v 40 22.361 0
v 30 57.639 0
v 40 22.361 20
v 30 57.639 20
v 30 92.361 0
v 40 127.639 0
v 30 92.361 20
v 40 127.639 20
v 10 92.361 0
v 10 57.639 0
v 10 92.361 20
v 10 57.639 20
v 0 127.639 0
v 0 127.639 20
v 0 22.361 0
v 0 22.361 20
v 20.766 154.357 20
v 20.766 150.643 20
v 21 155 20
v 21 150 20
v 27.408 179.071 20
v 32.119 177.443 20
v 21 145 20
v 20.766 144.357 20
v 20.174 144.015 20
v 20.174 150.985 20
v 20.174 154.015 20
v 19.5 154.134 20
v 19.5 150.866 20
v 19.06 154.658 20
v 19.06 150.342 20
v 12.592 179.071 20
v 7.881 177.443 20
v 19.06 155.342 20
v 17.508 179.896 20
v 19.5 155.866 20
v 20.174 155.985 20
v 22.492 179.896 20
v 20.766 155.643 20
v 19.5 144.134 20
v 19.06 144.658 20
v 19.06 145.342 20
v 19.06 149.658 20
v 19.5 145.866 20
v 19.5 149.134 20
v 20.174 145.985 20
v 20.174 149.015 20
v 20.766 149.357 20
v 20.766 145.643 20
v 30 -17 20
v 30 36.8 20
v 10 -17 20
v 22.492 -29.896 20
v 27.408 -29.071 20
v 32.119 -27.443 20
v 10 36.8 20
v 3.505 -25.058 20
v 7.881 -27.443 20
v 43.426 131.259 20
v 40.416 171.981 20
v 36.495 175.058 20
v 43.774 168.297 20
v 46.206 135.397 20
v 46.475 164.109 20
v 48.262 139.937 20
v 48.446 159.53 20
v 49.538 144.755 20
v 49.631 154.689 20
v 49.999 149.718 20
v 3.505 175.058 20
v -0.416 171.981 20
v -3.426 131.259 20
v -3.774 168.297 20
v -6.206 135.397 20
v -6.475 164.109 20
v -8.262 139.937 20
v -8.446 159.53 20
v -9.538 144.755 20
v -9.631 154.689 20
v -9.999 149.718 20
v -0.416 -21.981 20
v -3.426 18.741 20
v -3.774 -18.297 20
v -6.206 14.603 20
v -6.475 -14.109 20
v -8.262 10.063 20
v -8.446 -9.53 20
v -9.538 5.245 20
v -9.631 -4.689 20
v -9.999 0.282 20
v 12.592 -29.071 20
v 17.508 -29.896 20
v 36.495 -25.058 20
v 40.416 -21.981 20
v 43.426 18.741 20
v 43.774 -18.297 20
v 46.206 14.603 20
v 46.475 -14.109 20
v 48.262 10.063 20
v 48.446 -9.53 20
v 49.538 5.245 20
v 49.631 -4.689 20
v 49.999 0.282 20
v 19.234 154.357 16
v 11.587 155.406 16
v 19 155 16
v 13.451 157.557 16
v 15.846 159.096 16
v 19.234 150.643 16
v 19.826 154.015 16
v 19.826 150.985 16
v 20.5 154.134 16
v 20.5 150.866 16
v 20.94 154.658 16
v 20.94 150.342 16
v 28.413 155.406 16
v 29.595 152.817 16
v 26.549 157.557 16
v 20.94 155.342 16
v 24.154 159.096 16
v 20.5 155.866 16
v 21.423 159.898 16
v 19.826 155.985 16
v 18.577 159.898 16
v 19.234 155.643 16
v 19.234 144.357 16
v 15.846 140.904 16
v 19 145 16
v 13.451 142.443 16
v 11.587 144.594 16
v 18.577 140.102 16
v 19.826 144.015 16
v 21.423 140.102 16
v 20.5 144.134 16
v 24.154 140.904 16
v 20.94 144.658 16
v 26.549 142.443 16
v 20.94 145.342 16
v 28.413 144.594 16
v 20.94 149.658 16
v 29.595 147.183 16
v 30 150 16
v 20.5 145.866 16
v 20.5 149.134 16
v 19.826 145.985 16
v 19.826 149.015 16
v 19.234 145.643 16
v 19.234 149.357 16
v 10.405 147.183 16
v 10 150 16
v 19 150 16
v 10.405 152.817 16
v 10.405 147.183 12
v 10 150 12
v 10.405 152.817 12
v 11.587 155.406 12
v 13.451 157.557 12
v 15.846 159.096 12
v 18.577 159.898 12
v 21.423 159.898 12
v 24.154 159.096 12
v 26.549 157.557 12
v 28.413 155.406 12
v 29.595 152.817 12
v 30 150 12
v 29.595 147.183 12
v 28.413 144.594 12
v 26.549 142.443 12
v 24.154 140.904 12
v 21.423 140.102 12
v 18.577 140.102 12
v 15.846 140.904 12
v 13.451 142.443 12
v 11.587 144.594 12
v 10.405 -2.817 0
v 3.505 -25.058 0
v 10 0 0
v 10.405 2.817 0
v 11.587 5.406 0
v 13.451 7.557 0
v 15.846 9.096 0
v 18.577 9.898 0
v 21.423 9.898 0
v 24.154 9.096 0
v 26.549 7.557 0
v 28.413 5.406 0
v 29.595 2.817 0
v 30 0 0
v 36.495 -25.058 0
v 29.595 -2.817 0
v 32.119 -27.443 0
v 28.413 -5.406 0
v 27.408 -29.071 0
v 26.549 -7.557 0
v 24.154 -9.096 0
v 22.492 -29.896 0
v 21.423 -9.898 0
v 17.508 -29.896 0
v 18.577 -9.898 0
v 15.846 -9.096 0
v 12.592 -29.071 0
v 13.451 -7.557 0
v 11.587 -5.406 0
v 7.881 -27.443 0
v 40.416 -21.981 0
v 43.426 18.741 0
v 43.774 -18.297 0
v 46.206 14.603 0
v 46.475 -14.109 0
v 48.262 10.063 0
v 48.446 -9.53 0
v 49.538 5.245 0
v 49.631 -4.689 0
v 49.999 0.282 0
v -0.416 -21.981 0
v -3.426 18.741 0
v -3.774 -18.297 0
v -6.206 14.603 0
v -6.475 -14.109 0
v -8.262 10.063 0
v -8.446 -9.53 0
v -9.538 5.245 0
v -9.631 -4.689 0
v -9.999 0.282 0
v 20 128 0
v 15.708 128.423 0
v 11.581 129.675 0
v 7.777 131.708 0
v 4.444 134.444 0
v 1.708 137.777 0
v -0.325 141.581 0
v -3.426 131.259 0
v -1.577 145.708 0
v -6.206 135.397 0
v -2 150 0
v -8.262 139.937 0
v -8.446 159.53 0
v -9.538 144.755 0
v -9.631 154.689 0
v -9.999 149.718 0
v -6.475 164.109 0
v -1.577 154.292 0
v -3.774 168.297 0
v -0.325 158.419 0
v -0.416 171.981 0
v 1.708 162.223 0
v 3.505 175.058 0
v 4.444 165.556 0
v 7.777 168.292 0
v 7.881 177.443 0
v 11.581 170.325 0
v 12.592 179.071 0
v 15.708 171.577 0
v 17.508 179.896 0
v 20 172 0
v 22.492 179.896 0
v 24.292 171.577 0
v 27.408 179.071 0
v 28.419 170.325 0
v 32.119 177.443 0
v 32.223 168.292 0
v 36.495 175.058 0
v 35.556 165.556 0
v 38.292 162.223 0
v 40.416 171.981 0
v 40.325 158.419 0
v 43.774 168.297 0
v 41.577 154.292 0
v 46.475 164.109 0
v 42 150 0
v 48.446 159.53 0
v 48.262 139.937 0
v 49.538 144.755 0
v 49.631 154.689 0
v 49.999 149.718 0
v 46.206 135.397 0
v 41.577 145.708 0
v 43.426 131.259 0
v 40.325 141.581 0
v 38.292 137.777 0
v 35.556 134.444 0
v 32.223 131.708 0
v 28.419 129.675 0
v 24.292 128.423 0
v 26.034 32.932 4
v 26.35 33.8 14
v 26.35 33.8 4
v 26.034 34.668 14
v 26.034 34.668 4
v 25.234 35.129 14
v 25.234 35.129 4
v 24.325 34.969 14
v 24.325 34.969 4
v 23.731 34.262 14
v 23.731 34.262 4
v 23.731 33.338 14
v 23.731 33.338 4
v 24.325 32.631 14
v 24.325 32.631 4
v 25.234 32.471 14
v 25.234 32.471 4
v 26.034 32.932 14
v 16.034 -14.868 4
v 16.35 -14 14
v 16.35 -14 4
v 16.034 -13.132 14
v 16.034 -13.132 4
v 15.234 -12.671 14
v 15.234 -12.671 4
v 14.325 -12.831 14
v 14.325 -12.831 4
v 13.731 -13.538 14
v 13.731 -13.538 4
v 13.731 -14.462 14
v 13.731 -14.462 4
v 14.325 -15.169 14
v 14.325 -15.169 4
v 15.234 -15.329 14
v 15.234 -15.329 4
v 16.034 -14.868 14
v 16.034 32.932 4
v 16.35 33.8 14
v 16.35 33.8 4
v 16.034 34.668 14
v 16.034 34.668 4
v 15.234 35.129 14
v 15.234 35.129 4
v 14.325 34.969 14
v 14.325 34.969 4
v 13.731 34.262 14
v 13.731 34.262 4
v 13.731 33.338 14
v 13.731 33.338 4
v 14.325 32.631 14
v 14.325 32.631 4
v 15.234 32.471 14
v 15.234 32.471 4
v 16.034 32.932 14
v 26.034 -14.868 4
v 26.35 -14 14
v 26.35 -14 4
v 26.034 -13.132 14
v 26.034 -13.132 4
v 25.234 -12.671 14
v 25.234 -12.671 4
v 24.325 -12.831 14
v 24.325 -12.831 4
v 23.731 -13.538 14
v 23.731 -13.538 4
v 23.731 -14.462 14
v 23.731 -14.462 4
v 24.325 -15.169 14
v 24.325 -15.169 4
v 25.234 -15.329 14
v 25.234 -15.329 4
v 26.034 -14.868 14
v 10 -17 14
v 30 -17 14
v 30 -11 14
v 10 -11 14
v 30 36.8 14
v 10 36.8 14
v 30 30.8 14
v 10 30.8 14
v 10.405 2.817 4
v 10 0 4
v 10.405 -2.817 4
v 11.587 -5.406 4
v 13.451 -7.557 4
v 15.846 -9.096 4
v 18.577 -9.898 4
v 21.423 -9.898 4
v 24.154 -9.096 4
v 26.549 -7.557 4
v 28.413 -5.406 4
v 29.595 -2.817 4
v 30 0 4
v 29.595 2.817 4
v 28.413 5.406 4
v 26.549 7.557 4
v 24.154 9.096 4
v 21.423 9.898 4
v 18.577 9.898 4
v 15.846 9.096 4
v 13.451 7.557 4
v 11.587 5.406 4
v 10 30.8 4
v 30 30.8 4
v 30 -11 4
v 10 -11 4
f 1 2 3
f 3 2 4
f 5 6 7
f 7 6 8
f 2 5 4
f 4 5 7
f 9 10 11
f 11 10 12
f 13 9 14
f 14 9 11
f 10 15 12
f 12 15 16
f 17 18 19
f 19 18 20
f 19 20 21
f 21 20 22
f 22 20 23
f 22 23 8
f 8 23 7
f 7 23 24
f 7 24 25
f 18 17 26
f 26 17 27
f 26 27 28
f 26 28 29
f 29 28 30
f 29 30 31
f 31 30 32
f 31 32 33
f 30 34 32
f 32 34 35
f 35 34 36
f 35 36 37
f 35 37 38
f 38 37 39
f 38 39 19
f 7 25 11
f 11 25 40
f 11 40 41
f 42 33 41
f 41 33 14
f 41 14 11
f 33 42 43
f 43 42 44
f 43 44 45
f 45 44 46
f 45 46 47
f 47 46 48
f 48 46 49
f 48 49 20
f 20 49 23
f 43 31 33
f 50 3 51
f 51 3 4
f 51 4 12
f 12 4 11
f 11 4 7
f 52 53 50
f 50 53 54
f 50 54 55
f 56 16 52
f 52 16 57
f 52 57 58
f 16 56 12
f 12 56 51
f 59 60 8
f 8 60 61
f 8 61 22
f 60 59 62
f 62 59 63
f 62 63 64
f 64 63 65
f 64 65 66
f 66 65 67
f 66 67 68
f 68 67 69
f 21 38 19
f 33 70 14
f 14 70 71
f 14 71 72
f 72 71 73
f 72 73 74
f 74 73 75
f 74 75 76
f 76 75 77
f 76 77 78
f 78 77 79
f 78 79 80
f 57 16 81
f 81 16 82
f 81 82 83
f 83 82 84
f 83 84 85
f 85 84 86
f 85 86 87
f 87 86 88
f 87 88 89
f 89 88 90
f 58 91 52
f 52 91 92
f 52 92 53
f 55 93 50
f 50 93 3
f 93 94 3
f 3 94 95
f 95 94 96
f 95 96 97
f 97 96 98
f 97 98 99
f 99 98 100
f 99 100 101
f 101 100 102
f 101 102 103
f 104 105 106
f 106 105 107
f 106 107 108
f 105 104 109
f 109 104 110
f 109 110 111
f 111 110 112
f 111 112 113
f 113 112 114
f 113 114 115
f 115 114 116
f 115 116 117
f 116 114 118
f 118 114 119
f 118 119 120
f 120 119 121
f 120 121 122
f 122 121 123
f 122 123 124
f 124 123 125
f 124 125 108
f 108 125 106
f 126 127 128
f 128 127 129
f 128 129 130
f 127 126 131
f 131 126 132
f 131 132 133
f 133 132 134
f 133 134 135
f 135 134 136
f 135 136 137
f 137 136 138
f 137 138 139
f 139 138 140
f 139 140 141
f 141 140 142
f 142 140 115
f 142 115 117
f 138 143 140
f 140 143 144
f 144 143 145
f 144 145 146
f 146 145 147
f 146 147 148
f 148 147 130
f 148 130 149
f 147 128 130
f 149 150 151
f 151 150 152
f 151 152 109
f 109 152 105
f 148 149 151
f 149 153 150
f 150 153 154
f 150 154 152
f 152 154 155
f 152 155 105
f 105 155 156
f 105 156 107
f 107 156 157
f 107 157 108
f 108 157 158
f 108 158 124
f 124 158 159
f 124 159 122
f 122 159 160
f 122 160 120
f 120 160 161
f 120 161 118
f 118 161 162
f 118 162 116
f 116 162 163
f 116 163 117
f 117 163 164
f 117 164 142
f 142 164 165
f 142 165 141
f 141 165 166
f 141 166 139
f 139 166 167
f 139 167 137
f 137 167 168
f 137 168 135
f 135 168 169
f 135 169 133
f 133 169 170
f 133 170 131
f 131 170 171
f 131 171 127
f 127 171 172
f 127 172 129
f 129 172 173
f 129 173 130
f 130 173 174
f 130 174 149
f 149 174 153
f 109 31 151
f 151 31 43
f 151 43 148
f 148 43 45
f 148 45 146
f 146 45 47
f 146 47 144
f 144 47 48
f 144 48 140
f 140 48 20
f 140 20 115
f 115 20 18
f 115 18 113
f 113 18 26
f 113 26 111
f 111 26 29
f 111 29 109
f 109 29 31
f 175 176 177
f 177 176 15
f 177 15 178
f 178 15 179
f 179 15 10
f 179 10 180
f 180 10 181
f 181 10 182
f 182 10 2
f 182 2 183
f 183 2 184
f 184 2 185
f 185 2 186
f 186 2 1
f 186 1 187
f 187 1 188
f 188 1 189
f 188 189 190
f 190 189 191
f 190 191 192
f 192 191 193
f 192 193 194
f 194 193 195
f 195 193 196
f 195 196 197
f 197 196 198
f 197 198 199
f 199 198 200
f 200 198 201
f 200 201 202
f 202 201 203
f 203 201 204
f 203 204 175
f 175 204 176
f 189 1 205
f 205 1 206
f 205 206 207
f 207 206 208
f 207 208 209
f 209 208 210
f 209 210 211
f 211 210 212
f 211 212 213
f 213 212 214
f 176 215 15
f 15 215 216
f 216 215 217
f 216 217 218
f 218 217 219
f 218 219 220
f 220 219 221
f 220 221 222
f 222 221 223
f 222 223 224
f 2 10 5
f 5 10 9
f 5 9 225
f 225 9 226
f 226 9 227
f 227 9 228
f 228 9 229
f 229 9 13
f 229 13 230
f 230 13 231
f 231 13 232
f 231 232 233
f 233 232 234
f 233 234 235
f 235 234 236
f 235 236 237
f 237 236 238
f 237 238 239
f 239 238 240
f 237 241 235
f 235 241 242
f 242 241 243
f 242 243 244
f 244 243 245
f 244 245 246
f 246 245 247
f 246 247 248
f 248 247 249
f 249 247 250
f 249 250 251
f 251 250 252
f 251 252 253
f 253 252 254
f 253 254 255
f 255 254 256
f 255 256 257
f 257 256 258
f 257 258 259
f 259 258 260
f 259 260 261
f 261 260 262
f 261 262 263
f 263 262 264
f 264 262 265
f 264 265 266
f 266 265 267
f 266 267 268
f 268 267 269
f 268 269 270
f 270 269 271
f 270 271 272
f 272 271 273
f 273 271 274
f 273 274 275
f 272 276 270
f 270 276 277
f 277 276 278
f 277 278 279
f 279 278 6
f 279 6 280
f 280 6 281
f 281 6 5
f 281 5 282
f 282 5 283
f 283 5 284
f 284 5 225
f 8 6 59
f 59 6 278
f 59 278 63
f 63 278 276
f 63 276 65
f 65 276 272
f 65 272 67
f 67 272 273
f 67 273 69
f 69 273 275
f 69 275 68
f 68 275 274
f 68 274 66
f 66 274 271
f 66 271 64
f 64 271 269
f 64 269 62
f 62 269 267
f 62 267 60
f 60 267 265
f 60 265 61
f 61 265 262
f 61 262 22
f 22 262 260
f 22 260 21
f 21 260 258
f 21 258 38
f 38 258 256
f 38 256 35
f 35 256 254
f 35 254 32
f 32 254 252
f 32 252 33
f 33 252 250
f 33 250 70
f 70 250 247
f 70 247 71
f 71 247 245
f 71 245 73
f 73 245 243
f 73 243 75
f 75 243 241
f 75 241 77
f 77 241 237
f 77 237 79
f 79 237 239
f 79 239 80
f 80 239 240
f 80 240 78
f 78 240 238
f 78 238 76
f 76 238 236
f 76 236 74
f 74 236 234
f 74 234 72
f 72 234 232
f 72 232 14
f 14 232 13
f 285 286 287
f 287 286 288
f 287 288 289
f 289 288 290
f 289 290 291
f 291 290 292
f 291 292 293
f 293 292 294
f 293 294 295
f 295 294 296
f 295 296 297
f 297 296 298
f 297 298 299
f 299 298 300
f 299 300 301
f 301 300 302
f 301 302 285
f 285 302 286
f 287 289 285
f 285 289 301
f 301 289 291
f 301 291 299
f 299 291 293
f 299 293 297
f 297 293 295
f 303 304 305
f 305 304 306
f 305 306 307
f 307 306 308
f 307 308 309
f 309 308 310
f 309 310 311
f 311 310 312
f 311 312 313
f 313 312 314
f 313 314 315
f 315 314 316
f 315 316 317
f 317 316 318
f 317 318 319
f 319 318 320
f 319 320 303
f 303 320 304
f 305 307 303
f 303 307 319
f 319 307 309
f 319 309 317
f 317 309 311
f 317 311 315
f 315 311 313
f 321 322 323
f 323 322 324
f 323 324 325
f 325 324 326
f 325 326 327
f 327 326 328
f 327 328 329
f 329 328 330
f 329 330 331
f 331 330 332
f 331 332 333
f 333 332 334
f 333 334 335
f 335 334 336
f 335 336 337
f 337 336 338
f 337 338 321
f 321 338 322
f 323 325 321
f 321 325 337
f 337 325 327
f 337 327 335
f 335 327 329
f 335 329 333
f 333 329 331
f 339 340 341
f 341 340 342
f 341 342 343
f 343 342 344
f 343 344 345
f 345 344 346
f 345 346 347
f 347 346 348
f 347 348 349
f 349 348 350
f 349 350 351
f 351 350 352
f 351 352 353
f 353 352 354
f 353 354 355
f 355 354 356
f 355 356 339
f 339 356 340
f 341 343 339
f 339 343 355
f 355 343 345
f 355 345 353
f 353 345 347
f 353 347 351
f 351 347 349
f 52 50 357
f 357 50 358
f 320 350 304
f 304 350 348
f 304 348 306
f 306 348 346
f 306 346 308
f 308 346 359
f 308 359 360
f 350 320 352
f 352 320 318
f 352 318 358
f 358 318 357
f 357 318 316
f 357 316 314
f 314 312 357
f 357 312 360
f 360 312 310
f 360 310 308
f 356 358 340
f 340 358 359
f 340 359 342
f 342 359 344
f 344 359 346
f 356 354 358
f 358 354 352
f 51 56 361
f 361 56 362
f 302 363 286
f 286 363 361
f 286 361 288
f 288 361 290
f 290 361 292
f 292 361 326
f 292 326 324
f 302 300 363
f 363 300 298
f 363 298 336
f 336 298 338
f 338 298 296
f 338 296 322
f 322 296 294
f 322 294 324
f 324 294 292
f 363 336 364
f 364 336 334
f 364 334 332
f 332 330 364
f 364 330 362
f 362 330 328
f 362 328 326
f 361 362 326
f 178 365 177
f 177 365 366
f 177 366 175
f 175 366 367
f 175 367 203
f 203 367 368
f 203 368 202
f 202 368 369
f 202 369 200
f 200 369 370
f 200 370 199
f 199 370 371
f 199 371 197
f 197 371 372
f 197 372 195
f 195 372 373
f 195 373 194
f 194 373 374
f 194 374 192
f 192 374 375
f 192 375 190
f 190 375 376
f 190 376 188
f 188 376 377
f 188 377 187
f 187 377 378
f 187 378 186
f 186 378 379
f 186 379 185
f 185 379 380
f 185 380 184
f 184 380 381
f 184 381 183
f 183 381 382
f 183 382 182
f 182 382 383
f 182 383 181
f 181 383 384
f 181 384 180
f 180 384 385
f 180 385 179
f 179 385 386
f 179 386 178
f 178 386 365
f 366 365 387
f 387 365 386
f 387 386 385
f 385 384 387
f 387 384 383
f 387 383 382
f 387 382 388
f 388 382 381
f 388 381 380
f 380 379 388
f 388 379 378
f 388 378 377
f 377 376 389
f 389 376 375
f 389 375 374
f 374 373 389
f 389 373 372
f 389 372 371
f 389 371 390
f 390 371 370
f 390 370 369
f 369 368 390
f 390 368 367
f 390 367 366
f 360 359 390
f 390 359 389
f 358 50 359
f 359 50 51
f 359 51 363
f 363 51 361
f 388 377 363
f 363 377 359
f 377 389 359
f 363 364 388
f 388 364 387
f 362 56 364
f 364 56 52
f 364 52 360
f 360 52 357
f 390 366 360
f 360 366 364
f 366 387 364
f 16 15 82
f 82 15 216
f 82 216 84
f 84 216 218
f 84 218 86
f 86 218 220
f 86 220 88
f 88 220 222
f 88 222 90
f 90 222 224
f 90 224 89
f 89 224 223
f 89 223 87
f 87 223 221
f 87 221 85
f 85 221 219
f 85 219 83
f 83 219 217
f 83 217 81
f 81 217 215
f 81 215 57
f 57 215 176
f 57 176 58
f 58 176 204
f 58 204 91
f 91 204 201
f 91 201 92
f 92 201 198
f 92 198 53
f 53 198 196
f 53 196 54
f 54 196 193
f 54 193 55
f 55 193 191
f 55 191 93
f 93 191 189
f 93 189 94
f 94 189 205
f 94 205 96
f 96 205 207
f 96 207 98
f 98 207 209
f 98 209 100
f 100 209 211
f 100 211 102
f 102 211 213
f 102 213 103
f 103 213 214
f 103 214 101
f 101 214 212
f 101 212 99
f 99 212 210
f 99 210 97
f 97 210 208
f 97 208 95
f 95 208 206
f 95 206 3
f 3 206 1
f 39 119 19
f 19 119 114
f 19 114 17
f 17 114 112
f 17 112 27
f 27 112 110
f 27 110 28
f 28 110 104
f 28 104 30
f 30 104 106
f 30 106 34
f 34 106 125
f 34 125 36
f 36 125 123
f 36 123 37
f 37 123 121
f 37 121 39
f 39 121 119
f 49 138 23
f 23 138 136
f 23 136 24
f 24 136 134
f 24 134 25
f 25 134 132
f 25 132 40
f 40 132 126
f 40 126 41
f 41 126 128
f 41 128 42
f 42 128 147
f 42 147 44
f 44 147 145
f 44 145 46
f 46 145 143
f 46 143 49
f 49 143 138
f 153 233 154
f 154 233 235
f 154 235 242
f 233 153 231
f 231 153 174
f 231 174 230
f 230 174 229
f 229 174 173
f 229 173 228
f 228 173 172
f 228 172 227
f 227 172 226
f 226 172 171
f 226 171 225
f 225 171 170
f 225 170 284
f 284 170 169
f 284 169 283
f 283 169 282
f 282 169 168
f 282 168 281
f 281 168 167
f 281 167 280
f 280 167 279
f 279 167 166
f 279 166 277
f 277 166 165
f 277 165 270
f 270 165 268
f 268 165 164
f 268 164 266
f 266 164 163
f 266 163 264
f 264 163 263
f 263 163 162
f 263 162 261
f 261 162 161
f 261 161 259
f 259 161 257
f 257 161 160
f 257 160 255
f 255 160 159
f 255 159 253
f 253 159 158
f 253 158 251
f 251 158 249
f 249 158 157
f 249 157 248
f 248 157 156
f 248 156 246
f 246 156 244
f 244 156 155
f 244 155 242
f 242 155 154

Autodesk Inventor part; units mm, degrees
ref_plane "YZ Plane" through (0, 0, 0) normal (1, 0, 0) x (0, 1, 0)
ref_plane "XZ Plane" through (0, 0, 0) normal (0, 1, 0) x (-1, 0, 0)
ref_plane "XY Plane" through (0, 0, 0) normal (0, 0, 1) x (1, 0, 0)
sketch "Sketch1" plane through (0, 0, 0) normal (0, 0, 1) x (1, 0, 0)
  line L0 (0, 0) -> (40, 0)
  line L1 (40, 0) -> (40, 150)
  line L2 (40, 150) -> (0, 150)
  line L3 (0, 150) -> (0, 0)
  circle A0 centre (20, 0) radius 30
  circle A1 centre (20, 150) radius 30
  point P0 (0, 22.3607)
  point P1 (40, 22.3607)
  point P2 (40, 127.6393)
  point P3 (0, 127.6393)
  dimension "d0" = 40
  dimension "d1" = 150
  dimension "d2" = 60
  dimension "d3" = 60
extrude "Extrusion1" add sketch "Sketch1" along normal blind 20
sketch "Sketch2" plane through (0, 0, 20) normal (0, 0, 1) x (1, 0, 0)
  line L0 (10, 0) -> (30, 0)
  line L1 (30, 0) -> (30, -17)
  line L2 (30, -17) -> (10, -17)
  line L3 (10, -17) -> (10, 0)
  line L4 (10, 0) -> (30, 0)
  line L5 (30, 0) -> (30, 36.8)
  line L6 (30, 36.8) -> (10, 36.8)
  line L7 (10, 36.8) -> (10, 0)
  line L8 (10, 36.8) -> (30, 36.8)
  line L9 (30, 36.8) -> (30, 30.8)
  line L10 (30, 30.8) -> (10, 30.8)
  line L11 (10, 30.8) -> (10, 36.8)
  line L12 (10, -17) -> (30, -17)
  line L13 (30, -17) -> (30, -11)
  line L14 (30, -11) -> (10, -11)
  line L15 (10, -11) -> (10, -17)
  line L16 (10, 36.8) -> (30, 36.8)
  line L17 (30, 36.8) -> (30, 33.8)
  line L18 (30, 33.8) -> (10, 33.8)
  line L19 (10, 33.8) -> (10, 36.8)
  line L20 (10, -17) -> (30, -17)
  line L21 (30, -17) -> (30, -14)
  line L22 (30, -14) -> (10, -14)
  line L23 (10, -14) -> (10, -17)
  point P0 (0, 0)
  dimension "d6" = 20
  dimension "d7" = 17
  dimension "d8" = 36.8
  dimension "d9" = 6
  dimension "d10" = 6
  dimension "d11" = 3
extrude "Extrusion2" cut sketch "Sketch2" against normal blind 16 contours L7 L10 L5 L0 | L0 L1 L14 L3
sketch "Sketch3" plane through (0, 0, 0) normal (0, 0, -1) x (-1, 0, 0)
  circle A0 centre (-20, 0) radius 10
  point P0 (0, 0)
  dimension "d14" = 20
extrude "Extrusion3" cut sketch "Sketch3" against normal blind 69.725
sketch "Sketch4" plane through (0, 0, 20) normal (0, 0, 1) x (1, 0, 0)
  line L0 (30, -11) -> (10, -11)
  line L1 (10, -11) -> (10, -17)
  line L2 (10, -17) -> (30, -17)
  line L3 (30, -17) -> (30, -11)
  line L4 (30, 30.8) -> (30, 0) projected
  line L5 (30, 30.8) -> (10, 30.8)
  line L6 (10, 30.8) -> (10, 36.8)
  line L7 (10, 36.8) -> (30, 36.8)
  line L8 (30, 36.8) -> (30, 30.8)
  line L9 (30, -17) -> (10, -17)
  line L10 (10, -17) -> (10, -14)
  line L11 (10, -14) -> (30, -14)
  line L12 (30, -14) -> (30, -17)
  point P0 (0, 0)
  dimension "d17" = 6
  dimension "d18" = 6
extrude "Extrusion4" cut sketch "Sketch4" against normal blind 6
sketch "Sketch5" plane through (0, 0, 14) normal (0, 0, 1) x (1, 0, 0)
  line L0 (30, 36.8) -> (30, -17) projected
  line L1 (10, -17) -> (10, 36.8) projected
  line L2 (30, -17) -> (10, -17)
  line L3 (10, -17) -> (10, -14)
  line L4 (10, -14) -> (30, -14)
  line L5 (30, -14) -> (30, -17)
  line L6 (20, -14) -> (15, -14)
  line L7 (15, -14) -> (15, -13.2117)
  line L8 (15, -13.2117) -> (20, -13.2117)
  line L9 (20, -13.2117) -> (20, -14)
  line L10 (20, -14) -> (25, -14)
  line L11 (25, -14) -> (25, -13.2117)
  line L12 (25, -13.2117) -> (20, -13.2117)
  line L13 (20, -13.2117) -> (20, -14)
  circle A0 centre (25, -14) radius 1.35
  circle A1 centre (15, -14) radius 1.35
  line L14 (10, 36.8) -> (30, 36.8) projected
  line L15 (10, 30.8) -> (10, 36.8) projected
  line L16 (30, 36.8) -> (10, 36.8)
  line L17 (10, 36.8) -> (10, 33.8)
  line L18 (10, 33.8) -> (30, 33.8)
  line L19 (30, 33.8) -> (30, 36.8)
  line L20 (20, 33.8) -> (25, 33.8)
  line L21 (25, 33.8) -> (25, 32.7882)
  line L22 (25, 32.7882) -> (20, 32.7882)
  line L23 (20, 32.7882) -> (20, 33.8)
  line L24 (20, 33.8) -> (15, 33.8)
  line L25 (15, 33.8) -> (15, 32.7882)
  line L26 (15, 32.7882) -> (20, 32.7882)
  line L27 (20, 32.7882) -> (20, 33.8)
  circle A2 centre (25, 33.8) radius 1.35
  circle A3 centre (15, 33.8) radius 1.35
  point P0 (0, 0)
  dimension "d21" = 3
  dimension "d22" = 5
  dimension "d23" = 5
  dimension "d24" = 2.7
  dimension "d25" = 2.7
  dimension "d26" = 3
  dimension "d27" = 2.7
  dimension "d28" = 2.7
extrude "Extrusion5" cut sketch "Sketch5" against normal blind 10 contours A2 L22 L21 L18 | L18 A2 | A0 L4 | L4 L11 L12 A0 | L21 L22 A2 L18 | A3 L18 | L18 L25 L26 A3 | L4 A0 L12 L11 | L18 A3 L26 L25 | A1 L8 L7 L4 | L4 A1 | A1 L4 L7 L8
thread "Thread1" size "M3x0.5" class "6H" standard "ANSI Metric M Profile" full length
thread "Thread2" size "M3x0.5" class "6H" standard "ANSI Metric M Profile" full length
thread "Thread3" size "M3x0.5" class "6H" standard "ANSI Metric M Profile" full length
thread "Thread4" size "M3x0.5" class "6H" standard "ANSI Metric M Profile" full length
sketch "Sketch6" plane through (0, 0, 0) normal (0, 0, -1) x (-1, 0, 0)
  line L0 (0, 0) -> (-20, 0)
  line L1 (-20, 0) -> (-20, 150)
  line L2 (-20, 150) -> (0, 150)
  line L3 (0, 150) -> (0, 0)
  circle A0 centre (-20, 150) radius 10
  circle A1 centre (-25, 150) radius 1
  circle A2 centre (-15, 150) radius 1
  circle A3 centre (-20, 150) radius 1
  dimension "d39" = 20
  dimension "d40" = 150
  dimension "d41" = 20
  dimension "d42" = 2
  dimension "d43" = 2
  dimension "d44" = 2
extrude "Extrusion6" cut sketch "Sketch6" against normal blind 39.2125 contours A3 L2 L1 | L1 L2 A3 | A2 L2 | L2 A2 | A1
sketch "Sketch7" plane through (0, 0, 20) normal (0, 0, 1) x (1, 0, 0)
  circle A0 centre (20, 150) radius 10
  point P0 (0, 0)
  dimension "d47" = 20
extrude "Extrusion7" cut sketch "Sketch7" against normal blind 16
sketch "Sketch8" plane through (0, 0, 20) normal (0, 0, 1) x (1, 0, 0)
  line L0 (40, 22.3607) -> (40, 127.6393) projected
  line L1 (0, 127.6393) -> (40, 127.6393)
  line L2 (40, 127.6393) -> (40, 22.3607)
  line L3 (40, 22.3607) -> (0, 22.3607)
  line L4 (0, 22.3607) -> (0, 127.6393)
  line L5 (10, 0) -> (10, 30.8) projected
  line L6 (10, 22.3607) -> (30, 22.3607)
  line L7 (30, 22.3607) -> (30, 92.3607)
  line L8 (30, 92.3607) -> (10, 92.3607)
  line L9 (10, 92.3607) -> (10, 22.3607)
  line L10 (10, 127.6393) -> (30, 127.6393)
  line L11 (30, 127.6393) -> (30, 57.6393)
  line L12 (30, 57.6393) -> (10, 57.6393)
  line L13 (10, 57.6393) -> (10, 127.6393)
  line L14 (0, 127.6393) -> (10, 92.3607)
  line L15 (30, 92.3607) -> (40, 127.6393)
  line L16 (0, 127.6393) -> (0, 22.3607) projected
  line L17 (10, 57.6393) -> (0, 22.3607)
  line L18 (30, 57.6393) -> (40, 22.3607)
  point P0 (0, 0)
  dimension "d53" = 20
  dimension "d54" = 70
  dimension "d55" = 70
extrude "Extrusion8" cut sketch "Sketch8" against normal blind 56.675 contours L18 L7 L15 L0 | L17 L4 L14 L9
sketch "Sketch9" plane through (0, 0, 20) normal (0, 0, 1) x (1, 0, 0)
  circle A0 centre (20, 150) radius 10 projected
  circle A1 centre (20, 150) radius 10
  point P0 (0, 0)
extrude "Extrusion9" add sketch "Sketch9" against normal blind 16
sketch "Sketch10" plane through (0, 0, 0) normal (0, 0, -1) x (-1, 0, 0)
  circle A0 centre (-20, 150) radius 1 projected
  circle A1 centre (-20, 150) radius 10
  point P0 (0, 0)
  dimension "d60" = 20
extrude "Extrusion10" cut sketch "Sketch10" against normal blind 16
sketch "Sketch11" plane through (0, 0, 0) normal (0, 0, -1) x (-1, 0, 0)
  circle A0 centre (-20, 150) radius 1
  point P0 (0, 0)
extrude "Extrusion11" add sketch "Sketch11" against normal blind 20
sketch "Sketch12" plane through (20, 150, 0) normal (0, 0, -1) x (-1, 0, 0)
  circle A0 centre (0, 0) radius 1
  point P0 (20, -150)
extrude "Extrusion12" cut sketch "Sketch12" against normal blind 49.85
sketch "Sketch13" plane through (20, 150, 16) normal (0, 0, -1) x (-1, 0, 0)
  circle A0 centre (0, -5) radius 1
  circle A1 centre (0, 5) radius 1
  point P0 (20, -150)
  dimension "d67" = 2
  dimension "d68" = 2
extrude "Extrusion13" cut sketch "Sketch13" against normal blind 42.225
chamfer "Chamfer2" distance 12 angle 45 1 edges at (30, 150, 0)
properties part number "1stArm"
